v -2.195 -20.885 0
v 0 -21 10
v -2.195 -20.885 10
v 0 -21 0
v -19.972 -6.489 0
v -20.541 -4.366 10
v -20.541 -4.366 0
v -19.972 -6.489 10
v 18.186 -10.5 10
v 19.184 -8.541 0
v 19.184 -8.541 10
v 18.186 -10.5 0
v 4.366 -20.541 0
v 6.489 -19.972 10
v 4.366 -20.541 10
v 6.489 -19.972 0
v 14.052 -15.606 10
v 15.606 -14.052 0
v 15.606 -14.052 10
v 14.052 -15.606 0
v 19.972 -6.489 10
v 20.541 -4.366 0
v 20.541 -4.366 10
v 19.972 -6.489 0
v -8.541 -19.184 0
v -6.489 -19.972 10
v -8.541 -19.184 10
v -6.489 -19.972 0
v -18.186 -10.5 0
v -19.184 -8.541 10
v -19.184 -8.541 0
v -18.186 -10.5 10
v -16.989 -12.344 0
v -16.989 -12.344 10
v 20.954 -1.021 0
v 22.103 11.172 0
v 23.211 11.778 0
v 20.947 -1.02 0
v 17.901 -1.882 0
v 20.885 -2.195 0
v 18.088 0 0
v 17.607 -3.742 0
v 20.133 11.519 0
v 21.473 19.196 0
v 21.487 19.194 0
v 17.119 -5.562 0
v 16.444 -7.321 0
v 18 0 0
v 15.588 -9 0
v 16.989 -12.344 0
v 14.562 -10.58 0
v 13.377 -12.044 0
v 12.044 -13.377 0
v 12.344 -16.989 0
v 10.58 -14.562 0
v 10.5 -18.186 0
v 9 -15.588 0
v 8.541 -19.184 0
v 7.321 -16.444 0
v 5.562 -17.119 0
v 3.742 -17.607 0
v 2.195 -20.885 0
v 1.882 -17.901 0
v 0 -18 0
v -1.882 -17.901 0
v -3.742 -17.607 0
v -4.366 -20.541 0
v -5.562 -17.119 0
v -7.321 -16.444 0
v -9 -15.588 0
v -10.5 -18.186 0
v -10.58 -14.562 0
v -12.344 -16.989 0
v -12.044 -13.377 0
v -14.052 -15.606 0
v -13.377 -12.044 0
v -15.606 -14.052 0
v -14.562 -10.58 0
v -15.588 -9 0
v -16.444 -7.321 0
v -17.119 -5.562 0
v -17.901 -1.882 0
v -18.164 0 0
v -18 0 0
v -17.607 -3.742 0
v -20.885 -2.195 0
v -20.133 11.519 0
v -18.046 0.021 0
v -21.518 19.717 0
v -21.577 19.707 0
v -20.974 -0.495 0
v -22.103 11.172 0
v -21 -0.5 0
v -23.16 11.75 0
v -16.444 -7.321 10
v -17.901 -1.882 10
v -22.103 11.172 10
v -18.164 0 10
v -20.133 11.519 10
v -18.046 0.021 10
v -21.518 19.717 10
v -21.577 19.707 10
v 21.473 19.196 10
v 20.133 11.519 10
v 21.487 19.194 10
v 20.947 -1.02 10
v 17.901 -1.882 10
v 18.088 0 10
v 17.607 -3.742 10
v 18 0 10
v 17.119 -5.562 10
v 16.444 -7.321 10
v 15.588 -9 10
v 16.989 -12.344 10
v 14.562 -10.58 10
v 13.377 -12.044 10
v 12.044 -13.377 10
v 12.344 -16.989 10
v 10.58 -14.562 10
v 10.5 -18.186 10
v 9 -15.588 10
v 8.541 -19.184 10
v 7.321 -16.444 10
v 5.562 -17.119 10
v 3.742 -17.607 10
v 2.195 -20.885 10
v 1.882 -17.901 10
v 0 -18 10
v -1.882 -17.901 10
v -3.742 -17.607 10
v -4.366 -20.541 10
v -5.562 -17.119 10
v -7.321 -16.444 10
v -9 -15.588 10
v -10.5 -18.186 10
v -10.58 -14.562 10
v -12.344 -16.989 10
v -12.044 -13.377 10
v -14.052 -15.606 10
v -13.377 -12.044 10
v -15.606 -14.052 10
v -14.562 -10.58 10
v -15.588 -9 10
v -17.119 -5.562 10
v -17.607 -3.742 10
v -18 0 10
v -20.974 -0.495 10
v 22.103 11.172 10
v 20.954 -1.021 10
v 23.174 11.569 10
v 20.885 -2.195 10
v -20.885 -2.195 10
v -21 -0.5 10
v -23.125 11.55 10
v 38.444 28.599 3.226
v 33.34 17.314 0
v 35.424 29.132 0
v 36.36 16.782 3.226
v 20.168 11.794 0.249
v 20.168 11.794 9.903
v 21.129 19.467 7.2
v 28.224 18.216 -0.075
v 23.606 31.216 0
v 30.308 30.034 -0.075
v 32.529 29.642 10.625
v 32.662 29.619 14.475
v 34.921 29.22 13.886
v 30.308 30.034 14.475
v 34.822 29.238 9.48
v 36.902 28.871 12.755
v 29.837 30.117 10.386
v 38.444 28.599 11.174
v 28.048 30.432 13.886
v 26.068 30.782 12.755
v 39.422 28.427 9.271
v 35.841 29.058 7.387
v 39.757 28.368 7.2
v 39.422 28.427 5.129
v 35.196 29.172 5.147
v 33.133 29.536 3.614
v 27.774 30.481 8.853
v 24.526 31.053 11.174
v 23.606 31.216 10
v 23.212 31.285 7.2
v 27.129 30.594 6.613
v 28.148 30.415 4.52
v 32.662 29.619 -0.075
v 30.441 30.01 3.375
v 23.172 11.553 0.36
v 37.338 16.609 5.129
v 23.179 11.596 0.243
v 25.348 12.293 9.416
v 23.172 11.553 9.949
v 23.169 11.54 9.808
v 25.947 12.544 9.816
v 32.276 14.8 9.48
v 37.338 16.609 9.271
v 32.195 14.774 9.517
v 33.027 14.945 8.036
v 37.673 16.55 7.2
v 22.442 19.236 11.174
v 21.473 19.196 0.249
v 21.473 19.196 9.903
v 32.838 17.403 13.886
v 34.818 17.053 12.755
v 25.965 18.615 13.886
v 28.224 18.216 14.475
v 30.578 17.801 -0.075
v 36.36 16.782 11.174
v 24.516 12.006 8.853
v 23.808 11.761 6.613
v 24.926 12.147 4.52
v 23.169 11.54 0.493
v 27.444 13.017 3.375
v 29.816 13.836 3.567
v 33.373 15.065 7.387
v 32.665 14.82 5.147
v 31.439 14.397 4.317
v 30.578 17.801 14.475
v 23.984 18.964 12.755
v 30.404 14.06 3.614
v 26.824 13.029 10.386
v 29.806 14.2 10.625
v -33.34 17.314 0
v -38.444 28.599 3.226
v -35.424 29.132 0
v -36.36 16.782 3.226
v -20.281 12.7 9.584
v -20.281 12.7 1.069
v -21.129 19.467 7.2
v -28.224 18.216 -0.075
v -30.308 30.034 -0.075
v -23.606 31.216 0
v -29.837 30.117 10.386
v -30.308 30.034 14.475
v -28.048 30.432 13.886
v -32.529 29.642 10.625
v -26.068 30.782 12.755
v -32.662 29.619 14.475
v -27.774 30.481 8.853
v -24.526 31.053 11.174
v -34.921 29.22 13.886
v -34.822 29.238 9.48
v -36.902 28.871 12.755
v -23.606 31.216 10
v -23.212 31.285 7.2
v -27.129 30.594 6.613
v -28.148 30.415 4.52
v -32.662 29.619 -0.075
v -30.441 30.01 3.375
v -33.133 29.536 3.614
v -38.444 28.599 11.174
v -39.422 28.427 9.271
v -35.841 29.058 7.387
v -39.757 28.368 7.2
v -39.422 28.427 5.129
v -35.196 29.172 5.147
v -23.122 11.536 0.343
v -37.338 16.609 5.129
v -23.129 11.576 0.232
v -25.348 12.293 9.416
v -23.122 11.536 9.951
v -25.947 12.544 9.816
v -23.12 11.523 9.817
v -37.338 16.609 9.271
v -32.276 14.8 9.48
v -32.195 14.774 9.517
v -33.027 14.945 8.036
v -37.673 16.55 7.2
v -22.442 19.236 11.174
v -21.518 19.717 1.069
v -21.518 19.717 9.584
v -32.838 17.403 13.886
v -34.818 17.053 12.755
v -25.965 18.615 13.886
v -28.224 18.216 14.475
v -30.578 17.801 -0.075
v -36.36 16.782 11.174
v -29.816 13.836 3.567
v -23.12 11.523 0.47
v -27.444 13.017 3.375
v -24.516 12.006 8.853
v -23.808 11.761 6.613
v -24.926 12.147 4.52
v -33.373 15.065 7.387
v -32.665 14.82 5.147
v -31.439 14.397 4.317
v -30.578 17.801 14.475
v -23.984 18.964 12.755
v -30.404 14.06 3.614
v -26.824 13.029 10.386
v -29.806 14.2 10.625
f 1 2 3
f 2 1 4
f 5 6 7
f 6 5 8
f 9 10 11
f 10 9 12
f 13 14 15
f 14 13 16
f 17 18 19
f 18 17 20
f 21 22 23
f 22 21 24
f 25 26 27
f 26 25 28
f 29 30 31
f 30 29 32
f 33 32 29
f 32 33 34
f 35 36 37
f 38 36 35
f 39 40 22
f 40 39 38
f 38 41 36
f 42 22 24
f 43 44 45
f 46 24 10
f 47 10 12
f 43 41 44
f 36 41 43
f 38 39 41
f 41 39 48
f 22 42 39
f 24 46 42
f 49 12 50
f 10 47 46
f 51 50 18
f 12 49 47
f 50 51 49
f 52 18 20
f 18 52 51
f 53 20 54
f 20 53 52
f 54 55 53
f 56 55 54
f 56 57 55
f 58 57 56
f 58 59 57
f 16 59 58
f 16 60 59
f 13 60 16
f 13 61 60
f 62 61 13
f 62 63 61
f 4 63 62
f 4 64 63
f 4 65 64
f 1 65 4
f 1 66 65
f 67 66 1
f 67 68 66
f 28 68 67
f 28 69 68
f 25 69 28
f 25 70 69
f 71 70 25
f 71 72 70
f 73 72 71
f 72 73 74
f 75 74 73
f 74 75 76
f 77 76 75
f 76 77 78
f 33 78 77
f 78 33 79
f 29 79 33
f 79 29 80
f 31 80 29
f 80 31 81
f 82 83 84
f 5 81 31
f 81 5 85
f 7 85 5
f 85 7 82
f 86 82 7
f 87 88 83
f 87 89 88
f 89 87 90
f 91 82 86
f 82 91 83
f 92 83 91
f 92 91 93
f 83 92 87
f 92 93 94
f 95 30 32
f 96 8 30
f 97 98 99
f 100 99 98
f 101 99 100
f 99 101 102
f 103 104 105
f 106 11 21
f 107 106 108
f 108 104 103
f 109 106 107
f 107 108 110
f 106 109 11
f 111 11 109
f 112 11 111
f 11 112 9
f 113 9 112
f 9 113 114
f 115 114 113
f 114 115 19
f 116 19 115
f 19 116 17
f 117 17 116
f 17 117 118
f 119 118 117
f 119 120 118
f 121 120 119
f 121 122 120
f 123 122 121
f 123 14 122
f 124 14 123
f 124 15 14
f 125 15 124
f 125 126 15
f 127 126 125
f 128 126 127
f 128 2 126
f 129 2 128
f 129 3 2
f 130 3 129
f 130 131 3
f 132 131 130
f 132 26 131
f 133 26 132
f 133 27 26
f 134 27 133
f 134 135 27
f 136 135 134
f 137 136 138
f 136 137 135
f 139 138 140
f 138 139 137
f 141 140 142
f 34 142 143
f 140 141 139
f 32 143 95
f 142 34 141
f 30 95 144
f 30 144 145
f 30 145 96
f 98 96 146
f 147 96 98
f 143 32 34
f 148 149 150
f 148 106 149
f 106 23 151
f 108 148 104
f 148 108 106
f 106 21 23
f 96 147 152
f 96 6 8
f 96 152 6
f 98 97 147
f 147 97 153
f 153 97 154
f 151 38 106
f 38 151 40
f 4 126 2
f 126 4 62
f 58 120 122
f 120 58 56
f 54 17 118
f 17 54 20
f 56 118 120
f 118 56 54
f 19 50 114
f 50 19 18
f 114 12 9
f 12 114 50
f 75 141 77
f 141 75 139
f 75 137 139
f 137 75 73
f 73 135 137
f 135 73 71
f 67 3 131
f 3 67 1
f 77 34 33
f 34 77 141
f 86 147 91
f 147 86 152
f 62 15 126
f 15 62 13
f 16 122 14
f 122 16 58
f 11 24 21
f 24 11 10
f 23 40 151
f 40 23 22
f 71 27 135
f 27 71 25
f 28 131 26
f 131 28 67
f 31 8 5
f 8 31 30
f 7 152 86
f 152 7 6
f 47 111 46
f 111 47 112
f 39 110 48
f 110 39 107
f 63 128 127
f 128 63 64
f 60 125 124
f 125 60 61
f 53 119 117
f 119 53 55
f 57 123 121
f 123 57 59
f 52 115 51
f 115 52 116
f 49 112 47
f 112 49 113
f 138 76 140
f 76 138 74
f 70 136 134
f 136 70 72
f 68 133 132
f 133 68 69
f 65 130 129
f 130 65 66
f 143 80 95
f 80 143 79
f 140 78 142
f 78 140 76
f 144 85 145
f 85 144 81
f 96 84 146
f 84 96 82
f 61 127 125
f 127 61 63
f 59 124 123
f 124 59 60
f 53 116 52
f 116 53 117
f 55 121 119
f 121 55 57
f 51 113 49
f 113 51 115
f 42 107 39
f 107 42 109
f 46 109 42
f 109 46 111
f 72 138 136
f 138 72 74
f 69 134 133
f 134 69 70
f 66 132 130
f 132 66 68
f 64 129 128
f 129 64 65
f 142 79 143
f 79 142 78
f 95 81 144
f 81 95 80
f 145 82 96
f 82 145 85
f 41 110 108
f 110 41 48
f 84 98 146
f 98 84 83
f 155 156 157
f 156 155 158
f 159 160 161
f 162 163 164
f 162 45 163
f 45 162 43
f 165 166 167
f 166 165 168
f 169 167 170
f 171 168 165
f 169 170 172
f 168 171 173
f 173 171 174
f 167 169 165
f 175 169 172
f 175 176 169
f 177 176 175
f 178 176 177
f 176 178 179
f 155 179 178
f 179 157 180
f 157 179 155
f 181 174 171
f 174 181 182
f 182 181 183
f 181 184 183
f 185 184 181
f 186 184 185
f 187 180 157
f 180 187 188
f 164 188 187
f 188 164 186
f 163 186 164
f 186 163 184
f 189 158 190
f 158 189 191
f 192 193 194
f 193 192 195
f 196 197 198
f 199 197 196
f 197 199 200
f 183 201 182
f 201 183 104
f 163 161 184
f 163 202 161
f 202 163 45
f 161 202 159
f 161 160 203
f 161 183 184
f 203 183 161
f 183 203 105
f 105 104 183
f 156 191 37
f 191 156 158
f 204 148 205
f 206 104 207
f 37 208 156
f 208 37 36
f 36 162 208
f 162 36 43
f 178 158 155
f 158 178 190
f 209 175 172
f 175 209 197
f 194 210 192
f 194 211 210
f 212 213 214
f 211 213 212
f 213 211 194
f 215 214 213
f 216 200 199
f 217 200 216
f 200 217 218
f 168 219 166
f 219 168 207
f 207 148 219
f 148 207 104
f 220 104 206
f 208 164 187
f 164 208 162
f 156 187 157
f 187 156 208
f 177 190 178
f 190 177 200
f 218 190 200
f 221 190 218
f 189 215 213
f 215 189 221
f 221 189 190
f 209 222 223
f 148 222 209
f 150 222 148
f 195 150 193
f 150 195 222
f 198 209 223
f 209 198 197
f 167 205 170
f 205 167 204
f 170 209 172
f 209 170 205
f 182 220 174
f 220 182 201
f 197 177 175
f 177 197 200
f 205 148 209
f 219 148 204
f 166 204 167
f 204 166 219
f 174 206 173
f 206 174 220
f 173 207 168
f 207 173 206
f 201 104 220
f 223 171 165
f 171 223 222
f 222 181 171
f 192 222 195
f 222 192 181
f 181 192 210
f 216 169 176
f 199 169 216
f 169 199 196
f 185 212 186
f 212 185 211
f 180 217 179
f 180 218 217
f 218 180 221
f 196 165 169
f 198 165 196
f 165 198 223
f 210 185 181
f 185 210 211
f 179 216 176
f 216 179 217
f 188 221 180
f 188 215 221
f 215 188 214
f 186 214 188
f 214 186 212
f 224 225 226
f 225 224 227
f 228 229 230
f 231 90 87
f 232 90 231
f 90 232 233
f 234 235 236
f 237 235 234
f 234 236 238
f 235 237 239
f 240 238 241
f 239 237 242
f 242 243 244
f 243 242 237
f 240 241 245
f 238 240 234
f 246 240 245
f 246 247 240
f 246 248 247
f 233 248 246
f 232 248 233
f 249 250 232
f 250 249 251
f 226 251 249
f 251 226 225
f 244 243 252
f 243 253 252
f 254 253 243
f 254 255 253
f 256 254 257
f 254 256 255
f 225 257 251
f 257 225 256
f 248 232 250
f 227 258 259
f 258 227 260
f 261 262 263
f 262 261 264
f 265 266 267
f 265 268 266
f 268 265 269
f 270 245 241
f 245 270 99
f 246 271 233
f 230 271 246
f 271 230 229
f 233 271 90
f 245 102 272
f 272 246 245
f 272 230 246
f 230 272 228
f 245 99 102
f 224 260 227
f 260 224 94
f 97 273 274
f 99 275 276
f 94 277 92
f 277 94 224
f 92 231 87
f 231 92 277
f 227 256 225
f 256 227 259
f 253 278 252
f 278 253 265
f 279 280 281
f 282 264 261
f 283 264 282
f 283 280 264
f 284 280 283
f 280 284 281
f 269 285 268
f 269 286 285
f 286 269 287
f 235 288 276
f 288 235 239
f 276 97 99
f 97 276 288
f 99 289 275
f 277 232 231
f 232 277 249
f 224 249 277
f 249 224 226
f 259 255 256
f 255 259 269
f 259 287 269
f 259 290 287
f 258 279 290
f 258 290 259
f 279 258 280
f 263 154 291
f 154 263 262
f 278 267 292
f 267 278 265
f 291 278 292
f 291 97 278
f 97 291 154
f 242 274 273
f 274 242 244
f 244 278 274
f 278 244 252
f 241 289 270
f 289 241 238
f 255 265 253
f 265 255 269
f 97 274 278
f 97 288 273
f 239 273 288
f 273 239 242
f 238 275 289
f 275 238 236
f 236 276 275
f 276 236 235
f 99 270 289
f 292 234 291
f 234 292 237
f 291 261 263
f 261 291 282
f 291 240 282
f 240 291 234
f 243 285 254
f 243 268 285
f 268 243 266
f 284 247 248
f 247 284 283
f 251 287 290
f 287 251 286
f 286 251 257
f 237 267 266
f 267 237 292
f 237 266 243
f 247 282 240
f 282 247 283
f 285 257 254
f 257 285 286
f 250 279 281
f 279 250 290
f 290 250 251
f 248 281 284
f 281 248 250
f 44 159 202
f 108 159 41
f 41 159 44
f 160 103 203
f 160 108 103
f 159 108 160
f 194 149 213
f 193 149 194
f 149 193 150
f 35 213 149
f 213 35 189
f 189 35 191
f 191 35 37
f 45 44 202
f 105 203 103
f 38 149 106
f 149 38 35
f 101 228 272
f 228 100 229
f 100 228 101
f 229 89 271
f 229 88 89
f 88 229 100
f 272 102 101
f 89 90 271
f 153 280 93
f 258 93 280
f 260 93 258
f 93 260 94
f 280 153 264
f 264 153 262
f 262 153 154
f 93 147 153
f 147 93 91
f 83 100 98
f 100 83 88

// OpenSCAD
spring_radius = 20; // Radius of spring
eartube_rotation = 5; // Rotation of eartube in spring


// Create the first leaf (outside) of the spring

module outerSpring() {
    difference(){
        cylinder(r=spring_radius+1,h=10,$fn=60); //outer diameter
        cylinder(r=spring_radius-2,h=10,$fn=60); //inner diameter
    }
}

// Create the second leaf (inside) of the spring
module innerSpring() {
    translate([0,8,0]) 
    difference(){
        cylinder(r=spring_radius+2,h=10,$fn=60); //outer diameter
        cylinder(r=spring_radius,h=10,$fn=60); //inner diameter
    }
}


// Create connector and hole for eartube.

module hole($rotate){
    radius = 7;
    difference() {
        hull(){
            translate([-radius,-radius,0]) cube([2,10,20]);
            translate([-radius,-radius,0]) cube([12,2,12]);
            translate([1,.2,0])scale([1.2,1.05,1])//thicker wall
            cylinder(r=radius,h=12);
        }
        translate([1,0,0]) rotate([0,0,$rotate]) union(){hull(){
        translate([0,0,-10])scale([1.2,1,1])sphere(3.7,$fn=10);//ear tube diameter
    translate([0,0,30])scale([1.2,1,1])sphere(3.7,$fn=10);
       }//ear tube diameter
       
      // translate([-.6,-1.2-3.5,0])cube([1.2,1.2,3]);//key pitch
   }
    }
 }
 
 
// Create the final piece

    difference(){

        // Springs
        union() {
            outerSpring();
//            innerSpring();
       // cube(1);
            }
        union(){
        // Cuts
        translate([-45,0,0])cube([90,45,10]); //cut centre
        translate([spring_radius+1,-spring_radius,0])cube([90,45,10]); //cut left
        translate([-spring_radius-90-1,-spring_radius,0])cube([90,45,10]); //cut right
    }
}

    // Connectors
    translate([spring_radius+10.5,30,7]) rotate([90,0,-10]) hole(eartube_rotation);
    translate([-spring_radius-10.5,30,7]) mirror([1,0,0]) rotate([90,0,-10]) hole(eartube_rotation);
    
    //Connect connectors to springs
    translate([spring_radius-2,-0.5,0])rotate([0,0,-10]) cube([3,20,10]);
    translate([-spring_radius-1,-0.5,0])rotate([0,0,10]) cube([3,20,10]);
